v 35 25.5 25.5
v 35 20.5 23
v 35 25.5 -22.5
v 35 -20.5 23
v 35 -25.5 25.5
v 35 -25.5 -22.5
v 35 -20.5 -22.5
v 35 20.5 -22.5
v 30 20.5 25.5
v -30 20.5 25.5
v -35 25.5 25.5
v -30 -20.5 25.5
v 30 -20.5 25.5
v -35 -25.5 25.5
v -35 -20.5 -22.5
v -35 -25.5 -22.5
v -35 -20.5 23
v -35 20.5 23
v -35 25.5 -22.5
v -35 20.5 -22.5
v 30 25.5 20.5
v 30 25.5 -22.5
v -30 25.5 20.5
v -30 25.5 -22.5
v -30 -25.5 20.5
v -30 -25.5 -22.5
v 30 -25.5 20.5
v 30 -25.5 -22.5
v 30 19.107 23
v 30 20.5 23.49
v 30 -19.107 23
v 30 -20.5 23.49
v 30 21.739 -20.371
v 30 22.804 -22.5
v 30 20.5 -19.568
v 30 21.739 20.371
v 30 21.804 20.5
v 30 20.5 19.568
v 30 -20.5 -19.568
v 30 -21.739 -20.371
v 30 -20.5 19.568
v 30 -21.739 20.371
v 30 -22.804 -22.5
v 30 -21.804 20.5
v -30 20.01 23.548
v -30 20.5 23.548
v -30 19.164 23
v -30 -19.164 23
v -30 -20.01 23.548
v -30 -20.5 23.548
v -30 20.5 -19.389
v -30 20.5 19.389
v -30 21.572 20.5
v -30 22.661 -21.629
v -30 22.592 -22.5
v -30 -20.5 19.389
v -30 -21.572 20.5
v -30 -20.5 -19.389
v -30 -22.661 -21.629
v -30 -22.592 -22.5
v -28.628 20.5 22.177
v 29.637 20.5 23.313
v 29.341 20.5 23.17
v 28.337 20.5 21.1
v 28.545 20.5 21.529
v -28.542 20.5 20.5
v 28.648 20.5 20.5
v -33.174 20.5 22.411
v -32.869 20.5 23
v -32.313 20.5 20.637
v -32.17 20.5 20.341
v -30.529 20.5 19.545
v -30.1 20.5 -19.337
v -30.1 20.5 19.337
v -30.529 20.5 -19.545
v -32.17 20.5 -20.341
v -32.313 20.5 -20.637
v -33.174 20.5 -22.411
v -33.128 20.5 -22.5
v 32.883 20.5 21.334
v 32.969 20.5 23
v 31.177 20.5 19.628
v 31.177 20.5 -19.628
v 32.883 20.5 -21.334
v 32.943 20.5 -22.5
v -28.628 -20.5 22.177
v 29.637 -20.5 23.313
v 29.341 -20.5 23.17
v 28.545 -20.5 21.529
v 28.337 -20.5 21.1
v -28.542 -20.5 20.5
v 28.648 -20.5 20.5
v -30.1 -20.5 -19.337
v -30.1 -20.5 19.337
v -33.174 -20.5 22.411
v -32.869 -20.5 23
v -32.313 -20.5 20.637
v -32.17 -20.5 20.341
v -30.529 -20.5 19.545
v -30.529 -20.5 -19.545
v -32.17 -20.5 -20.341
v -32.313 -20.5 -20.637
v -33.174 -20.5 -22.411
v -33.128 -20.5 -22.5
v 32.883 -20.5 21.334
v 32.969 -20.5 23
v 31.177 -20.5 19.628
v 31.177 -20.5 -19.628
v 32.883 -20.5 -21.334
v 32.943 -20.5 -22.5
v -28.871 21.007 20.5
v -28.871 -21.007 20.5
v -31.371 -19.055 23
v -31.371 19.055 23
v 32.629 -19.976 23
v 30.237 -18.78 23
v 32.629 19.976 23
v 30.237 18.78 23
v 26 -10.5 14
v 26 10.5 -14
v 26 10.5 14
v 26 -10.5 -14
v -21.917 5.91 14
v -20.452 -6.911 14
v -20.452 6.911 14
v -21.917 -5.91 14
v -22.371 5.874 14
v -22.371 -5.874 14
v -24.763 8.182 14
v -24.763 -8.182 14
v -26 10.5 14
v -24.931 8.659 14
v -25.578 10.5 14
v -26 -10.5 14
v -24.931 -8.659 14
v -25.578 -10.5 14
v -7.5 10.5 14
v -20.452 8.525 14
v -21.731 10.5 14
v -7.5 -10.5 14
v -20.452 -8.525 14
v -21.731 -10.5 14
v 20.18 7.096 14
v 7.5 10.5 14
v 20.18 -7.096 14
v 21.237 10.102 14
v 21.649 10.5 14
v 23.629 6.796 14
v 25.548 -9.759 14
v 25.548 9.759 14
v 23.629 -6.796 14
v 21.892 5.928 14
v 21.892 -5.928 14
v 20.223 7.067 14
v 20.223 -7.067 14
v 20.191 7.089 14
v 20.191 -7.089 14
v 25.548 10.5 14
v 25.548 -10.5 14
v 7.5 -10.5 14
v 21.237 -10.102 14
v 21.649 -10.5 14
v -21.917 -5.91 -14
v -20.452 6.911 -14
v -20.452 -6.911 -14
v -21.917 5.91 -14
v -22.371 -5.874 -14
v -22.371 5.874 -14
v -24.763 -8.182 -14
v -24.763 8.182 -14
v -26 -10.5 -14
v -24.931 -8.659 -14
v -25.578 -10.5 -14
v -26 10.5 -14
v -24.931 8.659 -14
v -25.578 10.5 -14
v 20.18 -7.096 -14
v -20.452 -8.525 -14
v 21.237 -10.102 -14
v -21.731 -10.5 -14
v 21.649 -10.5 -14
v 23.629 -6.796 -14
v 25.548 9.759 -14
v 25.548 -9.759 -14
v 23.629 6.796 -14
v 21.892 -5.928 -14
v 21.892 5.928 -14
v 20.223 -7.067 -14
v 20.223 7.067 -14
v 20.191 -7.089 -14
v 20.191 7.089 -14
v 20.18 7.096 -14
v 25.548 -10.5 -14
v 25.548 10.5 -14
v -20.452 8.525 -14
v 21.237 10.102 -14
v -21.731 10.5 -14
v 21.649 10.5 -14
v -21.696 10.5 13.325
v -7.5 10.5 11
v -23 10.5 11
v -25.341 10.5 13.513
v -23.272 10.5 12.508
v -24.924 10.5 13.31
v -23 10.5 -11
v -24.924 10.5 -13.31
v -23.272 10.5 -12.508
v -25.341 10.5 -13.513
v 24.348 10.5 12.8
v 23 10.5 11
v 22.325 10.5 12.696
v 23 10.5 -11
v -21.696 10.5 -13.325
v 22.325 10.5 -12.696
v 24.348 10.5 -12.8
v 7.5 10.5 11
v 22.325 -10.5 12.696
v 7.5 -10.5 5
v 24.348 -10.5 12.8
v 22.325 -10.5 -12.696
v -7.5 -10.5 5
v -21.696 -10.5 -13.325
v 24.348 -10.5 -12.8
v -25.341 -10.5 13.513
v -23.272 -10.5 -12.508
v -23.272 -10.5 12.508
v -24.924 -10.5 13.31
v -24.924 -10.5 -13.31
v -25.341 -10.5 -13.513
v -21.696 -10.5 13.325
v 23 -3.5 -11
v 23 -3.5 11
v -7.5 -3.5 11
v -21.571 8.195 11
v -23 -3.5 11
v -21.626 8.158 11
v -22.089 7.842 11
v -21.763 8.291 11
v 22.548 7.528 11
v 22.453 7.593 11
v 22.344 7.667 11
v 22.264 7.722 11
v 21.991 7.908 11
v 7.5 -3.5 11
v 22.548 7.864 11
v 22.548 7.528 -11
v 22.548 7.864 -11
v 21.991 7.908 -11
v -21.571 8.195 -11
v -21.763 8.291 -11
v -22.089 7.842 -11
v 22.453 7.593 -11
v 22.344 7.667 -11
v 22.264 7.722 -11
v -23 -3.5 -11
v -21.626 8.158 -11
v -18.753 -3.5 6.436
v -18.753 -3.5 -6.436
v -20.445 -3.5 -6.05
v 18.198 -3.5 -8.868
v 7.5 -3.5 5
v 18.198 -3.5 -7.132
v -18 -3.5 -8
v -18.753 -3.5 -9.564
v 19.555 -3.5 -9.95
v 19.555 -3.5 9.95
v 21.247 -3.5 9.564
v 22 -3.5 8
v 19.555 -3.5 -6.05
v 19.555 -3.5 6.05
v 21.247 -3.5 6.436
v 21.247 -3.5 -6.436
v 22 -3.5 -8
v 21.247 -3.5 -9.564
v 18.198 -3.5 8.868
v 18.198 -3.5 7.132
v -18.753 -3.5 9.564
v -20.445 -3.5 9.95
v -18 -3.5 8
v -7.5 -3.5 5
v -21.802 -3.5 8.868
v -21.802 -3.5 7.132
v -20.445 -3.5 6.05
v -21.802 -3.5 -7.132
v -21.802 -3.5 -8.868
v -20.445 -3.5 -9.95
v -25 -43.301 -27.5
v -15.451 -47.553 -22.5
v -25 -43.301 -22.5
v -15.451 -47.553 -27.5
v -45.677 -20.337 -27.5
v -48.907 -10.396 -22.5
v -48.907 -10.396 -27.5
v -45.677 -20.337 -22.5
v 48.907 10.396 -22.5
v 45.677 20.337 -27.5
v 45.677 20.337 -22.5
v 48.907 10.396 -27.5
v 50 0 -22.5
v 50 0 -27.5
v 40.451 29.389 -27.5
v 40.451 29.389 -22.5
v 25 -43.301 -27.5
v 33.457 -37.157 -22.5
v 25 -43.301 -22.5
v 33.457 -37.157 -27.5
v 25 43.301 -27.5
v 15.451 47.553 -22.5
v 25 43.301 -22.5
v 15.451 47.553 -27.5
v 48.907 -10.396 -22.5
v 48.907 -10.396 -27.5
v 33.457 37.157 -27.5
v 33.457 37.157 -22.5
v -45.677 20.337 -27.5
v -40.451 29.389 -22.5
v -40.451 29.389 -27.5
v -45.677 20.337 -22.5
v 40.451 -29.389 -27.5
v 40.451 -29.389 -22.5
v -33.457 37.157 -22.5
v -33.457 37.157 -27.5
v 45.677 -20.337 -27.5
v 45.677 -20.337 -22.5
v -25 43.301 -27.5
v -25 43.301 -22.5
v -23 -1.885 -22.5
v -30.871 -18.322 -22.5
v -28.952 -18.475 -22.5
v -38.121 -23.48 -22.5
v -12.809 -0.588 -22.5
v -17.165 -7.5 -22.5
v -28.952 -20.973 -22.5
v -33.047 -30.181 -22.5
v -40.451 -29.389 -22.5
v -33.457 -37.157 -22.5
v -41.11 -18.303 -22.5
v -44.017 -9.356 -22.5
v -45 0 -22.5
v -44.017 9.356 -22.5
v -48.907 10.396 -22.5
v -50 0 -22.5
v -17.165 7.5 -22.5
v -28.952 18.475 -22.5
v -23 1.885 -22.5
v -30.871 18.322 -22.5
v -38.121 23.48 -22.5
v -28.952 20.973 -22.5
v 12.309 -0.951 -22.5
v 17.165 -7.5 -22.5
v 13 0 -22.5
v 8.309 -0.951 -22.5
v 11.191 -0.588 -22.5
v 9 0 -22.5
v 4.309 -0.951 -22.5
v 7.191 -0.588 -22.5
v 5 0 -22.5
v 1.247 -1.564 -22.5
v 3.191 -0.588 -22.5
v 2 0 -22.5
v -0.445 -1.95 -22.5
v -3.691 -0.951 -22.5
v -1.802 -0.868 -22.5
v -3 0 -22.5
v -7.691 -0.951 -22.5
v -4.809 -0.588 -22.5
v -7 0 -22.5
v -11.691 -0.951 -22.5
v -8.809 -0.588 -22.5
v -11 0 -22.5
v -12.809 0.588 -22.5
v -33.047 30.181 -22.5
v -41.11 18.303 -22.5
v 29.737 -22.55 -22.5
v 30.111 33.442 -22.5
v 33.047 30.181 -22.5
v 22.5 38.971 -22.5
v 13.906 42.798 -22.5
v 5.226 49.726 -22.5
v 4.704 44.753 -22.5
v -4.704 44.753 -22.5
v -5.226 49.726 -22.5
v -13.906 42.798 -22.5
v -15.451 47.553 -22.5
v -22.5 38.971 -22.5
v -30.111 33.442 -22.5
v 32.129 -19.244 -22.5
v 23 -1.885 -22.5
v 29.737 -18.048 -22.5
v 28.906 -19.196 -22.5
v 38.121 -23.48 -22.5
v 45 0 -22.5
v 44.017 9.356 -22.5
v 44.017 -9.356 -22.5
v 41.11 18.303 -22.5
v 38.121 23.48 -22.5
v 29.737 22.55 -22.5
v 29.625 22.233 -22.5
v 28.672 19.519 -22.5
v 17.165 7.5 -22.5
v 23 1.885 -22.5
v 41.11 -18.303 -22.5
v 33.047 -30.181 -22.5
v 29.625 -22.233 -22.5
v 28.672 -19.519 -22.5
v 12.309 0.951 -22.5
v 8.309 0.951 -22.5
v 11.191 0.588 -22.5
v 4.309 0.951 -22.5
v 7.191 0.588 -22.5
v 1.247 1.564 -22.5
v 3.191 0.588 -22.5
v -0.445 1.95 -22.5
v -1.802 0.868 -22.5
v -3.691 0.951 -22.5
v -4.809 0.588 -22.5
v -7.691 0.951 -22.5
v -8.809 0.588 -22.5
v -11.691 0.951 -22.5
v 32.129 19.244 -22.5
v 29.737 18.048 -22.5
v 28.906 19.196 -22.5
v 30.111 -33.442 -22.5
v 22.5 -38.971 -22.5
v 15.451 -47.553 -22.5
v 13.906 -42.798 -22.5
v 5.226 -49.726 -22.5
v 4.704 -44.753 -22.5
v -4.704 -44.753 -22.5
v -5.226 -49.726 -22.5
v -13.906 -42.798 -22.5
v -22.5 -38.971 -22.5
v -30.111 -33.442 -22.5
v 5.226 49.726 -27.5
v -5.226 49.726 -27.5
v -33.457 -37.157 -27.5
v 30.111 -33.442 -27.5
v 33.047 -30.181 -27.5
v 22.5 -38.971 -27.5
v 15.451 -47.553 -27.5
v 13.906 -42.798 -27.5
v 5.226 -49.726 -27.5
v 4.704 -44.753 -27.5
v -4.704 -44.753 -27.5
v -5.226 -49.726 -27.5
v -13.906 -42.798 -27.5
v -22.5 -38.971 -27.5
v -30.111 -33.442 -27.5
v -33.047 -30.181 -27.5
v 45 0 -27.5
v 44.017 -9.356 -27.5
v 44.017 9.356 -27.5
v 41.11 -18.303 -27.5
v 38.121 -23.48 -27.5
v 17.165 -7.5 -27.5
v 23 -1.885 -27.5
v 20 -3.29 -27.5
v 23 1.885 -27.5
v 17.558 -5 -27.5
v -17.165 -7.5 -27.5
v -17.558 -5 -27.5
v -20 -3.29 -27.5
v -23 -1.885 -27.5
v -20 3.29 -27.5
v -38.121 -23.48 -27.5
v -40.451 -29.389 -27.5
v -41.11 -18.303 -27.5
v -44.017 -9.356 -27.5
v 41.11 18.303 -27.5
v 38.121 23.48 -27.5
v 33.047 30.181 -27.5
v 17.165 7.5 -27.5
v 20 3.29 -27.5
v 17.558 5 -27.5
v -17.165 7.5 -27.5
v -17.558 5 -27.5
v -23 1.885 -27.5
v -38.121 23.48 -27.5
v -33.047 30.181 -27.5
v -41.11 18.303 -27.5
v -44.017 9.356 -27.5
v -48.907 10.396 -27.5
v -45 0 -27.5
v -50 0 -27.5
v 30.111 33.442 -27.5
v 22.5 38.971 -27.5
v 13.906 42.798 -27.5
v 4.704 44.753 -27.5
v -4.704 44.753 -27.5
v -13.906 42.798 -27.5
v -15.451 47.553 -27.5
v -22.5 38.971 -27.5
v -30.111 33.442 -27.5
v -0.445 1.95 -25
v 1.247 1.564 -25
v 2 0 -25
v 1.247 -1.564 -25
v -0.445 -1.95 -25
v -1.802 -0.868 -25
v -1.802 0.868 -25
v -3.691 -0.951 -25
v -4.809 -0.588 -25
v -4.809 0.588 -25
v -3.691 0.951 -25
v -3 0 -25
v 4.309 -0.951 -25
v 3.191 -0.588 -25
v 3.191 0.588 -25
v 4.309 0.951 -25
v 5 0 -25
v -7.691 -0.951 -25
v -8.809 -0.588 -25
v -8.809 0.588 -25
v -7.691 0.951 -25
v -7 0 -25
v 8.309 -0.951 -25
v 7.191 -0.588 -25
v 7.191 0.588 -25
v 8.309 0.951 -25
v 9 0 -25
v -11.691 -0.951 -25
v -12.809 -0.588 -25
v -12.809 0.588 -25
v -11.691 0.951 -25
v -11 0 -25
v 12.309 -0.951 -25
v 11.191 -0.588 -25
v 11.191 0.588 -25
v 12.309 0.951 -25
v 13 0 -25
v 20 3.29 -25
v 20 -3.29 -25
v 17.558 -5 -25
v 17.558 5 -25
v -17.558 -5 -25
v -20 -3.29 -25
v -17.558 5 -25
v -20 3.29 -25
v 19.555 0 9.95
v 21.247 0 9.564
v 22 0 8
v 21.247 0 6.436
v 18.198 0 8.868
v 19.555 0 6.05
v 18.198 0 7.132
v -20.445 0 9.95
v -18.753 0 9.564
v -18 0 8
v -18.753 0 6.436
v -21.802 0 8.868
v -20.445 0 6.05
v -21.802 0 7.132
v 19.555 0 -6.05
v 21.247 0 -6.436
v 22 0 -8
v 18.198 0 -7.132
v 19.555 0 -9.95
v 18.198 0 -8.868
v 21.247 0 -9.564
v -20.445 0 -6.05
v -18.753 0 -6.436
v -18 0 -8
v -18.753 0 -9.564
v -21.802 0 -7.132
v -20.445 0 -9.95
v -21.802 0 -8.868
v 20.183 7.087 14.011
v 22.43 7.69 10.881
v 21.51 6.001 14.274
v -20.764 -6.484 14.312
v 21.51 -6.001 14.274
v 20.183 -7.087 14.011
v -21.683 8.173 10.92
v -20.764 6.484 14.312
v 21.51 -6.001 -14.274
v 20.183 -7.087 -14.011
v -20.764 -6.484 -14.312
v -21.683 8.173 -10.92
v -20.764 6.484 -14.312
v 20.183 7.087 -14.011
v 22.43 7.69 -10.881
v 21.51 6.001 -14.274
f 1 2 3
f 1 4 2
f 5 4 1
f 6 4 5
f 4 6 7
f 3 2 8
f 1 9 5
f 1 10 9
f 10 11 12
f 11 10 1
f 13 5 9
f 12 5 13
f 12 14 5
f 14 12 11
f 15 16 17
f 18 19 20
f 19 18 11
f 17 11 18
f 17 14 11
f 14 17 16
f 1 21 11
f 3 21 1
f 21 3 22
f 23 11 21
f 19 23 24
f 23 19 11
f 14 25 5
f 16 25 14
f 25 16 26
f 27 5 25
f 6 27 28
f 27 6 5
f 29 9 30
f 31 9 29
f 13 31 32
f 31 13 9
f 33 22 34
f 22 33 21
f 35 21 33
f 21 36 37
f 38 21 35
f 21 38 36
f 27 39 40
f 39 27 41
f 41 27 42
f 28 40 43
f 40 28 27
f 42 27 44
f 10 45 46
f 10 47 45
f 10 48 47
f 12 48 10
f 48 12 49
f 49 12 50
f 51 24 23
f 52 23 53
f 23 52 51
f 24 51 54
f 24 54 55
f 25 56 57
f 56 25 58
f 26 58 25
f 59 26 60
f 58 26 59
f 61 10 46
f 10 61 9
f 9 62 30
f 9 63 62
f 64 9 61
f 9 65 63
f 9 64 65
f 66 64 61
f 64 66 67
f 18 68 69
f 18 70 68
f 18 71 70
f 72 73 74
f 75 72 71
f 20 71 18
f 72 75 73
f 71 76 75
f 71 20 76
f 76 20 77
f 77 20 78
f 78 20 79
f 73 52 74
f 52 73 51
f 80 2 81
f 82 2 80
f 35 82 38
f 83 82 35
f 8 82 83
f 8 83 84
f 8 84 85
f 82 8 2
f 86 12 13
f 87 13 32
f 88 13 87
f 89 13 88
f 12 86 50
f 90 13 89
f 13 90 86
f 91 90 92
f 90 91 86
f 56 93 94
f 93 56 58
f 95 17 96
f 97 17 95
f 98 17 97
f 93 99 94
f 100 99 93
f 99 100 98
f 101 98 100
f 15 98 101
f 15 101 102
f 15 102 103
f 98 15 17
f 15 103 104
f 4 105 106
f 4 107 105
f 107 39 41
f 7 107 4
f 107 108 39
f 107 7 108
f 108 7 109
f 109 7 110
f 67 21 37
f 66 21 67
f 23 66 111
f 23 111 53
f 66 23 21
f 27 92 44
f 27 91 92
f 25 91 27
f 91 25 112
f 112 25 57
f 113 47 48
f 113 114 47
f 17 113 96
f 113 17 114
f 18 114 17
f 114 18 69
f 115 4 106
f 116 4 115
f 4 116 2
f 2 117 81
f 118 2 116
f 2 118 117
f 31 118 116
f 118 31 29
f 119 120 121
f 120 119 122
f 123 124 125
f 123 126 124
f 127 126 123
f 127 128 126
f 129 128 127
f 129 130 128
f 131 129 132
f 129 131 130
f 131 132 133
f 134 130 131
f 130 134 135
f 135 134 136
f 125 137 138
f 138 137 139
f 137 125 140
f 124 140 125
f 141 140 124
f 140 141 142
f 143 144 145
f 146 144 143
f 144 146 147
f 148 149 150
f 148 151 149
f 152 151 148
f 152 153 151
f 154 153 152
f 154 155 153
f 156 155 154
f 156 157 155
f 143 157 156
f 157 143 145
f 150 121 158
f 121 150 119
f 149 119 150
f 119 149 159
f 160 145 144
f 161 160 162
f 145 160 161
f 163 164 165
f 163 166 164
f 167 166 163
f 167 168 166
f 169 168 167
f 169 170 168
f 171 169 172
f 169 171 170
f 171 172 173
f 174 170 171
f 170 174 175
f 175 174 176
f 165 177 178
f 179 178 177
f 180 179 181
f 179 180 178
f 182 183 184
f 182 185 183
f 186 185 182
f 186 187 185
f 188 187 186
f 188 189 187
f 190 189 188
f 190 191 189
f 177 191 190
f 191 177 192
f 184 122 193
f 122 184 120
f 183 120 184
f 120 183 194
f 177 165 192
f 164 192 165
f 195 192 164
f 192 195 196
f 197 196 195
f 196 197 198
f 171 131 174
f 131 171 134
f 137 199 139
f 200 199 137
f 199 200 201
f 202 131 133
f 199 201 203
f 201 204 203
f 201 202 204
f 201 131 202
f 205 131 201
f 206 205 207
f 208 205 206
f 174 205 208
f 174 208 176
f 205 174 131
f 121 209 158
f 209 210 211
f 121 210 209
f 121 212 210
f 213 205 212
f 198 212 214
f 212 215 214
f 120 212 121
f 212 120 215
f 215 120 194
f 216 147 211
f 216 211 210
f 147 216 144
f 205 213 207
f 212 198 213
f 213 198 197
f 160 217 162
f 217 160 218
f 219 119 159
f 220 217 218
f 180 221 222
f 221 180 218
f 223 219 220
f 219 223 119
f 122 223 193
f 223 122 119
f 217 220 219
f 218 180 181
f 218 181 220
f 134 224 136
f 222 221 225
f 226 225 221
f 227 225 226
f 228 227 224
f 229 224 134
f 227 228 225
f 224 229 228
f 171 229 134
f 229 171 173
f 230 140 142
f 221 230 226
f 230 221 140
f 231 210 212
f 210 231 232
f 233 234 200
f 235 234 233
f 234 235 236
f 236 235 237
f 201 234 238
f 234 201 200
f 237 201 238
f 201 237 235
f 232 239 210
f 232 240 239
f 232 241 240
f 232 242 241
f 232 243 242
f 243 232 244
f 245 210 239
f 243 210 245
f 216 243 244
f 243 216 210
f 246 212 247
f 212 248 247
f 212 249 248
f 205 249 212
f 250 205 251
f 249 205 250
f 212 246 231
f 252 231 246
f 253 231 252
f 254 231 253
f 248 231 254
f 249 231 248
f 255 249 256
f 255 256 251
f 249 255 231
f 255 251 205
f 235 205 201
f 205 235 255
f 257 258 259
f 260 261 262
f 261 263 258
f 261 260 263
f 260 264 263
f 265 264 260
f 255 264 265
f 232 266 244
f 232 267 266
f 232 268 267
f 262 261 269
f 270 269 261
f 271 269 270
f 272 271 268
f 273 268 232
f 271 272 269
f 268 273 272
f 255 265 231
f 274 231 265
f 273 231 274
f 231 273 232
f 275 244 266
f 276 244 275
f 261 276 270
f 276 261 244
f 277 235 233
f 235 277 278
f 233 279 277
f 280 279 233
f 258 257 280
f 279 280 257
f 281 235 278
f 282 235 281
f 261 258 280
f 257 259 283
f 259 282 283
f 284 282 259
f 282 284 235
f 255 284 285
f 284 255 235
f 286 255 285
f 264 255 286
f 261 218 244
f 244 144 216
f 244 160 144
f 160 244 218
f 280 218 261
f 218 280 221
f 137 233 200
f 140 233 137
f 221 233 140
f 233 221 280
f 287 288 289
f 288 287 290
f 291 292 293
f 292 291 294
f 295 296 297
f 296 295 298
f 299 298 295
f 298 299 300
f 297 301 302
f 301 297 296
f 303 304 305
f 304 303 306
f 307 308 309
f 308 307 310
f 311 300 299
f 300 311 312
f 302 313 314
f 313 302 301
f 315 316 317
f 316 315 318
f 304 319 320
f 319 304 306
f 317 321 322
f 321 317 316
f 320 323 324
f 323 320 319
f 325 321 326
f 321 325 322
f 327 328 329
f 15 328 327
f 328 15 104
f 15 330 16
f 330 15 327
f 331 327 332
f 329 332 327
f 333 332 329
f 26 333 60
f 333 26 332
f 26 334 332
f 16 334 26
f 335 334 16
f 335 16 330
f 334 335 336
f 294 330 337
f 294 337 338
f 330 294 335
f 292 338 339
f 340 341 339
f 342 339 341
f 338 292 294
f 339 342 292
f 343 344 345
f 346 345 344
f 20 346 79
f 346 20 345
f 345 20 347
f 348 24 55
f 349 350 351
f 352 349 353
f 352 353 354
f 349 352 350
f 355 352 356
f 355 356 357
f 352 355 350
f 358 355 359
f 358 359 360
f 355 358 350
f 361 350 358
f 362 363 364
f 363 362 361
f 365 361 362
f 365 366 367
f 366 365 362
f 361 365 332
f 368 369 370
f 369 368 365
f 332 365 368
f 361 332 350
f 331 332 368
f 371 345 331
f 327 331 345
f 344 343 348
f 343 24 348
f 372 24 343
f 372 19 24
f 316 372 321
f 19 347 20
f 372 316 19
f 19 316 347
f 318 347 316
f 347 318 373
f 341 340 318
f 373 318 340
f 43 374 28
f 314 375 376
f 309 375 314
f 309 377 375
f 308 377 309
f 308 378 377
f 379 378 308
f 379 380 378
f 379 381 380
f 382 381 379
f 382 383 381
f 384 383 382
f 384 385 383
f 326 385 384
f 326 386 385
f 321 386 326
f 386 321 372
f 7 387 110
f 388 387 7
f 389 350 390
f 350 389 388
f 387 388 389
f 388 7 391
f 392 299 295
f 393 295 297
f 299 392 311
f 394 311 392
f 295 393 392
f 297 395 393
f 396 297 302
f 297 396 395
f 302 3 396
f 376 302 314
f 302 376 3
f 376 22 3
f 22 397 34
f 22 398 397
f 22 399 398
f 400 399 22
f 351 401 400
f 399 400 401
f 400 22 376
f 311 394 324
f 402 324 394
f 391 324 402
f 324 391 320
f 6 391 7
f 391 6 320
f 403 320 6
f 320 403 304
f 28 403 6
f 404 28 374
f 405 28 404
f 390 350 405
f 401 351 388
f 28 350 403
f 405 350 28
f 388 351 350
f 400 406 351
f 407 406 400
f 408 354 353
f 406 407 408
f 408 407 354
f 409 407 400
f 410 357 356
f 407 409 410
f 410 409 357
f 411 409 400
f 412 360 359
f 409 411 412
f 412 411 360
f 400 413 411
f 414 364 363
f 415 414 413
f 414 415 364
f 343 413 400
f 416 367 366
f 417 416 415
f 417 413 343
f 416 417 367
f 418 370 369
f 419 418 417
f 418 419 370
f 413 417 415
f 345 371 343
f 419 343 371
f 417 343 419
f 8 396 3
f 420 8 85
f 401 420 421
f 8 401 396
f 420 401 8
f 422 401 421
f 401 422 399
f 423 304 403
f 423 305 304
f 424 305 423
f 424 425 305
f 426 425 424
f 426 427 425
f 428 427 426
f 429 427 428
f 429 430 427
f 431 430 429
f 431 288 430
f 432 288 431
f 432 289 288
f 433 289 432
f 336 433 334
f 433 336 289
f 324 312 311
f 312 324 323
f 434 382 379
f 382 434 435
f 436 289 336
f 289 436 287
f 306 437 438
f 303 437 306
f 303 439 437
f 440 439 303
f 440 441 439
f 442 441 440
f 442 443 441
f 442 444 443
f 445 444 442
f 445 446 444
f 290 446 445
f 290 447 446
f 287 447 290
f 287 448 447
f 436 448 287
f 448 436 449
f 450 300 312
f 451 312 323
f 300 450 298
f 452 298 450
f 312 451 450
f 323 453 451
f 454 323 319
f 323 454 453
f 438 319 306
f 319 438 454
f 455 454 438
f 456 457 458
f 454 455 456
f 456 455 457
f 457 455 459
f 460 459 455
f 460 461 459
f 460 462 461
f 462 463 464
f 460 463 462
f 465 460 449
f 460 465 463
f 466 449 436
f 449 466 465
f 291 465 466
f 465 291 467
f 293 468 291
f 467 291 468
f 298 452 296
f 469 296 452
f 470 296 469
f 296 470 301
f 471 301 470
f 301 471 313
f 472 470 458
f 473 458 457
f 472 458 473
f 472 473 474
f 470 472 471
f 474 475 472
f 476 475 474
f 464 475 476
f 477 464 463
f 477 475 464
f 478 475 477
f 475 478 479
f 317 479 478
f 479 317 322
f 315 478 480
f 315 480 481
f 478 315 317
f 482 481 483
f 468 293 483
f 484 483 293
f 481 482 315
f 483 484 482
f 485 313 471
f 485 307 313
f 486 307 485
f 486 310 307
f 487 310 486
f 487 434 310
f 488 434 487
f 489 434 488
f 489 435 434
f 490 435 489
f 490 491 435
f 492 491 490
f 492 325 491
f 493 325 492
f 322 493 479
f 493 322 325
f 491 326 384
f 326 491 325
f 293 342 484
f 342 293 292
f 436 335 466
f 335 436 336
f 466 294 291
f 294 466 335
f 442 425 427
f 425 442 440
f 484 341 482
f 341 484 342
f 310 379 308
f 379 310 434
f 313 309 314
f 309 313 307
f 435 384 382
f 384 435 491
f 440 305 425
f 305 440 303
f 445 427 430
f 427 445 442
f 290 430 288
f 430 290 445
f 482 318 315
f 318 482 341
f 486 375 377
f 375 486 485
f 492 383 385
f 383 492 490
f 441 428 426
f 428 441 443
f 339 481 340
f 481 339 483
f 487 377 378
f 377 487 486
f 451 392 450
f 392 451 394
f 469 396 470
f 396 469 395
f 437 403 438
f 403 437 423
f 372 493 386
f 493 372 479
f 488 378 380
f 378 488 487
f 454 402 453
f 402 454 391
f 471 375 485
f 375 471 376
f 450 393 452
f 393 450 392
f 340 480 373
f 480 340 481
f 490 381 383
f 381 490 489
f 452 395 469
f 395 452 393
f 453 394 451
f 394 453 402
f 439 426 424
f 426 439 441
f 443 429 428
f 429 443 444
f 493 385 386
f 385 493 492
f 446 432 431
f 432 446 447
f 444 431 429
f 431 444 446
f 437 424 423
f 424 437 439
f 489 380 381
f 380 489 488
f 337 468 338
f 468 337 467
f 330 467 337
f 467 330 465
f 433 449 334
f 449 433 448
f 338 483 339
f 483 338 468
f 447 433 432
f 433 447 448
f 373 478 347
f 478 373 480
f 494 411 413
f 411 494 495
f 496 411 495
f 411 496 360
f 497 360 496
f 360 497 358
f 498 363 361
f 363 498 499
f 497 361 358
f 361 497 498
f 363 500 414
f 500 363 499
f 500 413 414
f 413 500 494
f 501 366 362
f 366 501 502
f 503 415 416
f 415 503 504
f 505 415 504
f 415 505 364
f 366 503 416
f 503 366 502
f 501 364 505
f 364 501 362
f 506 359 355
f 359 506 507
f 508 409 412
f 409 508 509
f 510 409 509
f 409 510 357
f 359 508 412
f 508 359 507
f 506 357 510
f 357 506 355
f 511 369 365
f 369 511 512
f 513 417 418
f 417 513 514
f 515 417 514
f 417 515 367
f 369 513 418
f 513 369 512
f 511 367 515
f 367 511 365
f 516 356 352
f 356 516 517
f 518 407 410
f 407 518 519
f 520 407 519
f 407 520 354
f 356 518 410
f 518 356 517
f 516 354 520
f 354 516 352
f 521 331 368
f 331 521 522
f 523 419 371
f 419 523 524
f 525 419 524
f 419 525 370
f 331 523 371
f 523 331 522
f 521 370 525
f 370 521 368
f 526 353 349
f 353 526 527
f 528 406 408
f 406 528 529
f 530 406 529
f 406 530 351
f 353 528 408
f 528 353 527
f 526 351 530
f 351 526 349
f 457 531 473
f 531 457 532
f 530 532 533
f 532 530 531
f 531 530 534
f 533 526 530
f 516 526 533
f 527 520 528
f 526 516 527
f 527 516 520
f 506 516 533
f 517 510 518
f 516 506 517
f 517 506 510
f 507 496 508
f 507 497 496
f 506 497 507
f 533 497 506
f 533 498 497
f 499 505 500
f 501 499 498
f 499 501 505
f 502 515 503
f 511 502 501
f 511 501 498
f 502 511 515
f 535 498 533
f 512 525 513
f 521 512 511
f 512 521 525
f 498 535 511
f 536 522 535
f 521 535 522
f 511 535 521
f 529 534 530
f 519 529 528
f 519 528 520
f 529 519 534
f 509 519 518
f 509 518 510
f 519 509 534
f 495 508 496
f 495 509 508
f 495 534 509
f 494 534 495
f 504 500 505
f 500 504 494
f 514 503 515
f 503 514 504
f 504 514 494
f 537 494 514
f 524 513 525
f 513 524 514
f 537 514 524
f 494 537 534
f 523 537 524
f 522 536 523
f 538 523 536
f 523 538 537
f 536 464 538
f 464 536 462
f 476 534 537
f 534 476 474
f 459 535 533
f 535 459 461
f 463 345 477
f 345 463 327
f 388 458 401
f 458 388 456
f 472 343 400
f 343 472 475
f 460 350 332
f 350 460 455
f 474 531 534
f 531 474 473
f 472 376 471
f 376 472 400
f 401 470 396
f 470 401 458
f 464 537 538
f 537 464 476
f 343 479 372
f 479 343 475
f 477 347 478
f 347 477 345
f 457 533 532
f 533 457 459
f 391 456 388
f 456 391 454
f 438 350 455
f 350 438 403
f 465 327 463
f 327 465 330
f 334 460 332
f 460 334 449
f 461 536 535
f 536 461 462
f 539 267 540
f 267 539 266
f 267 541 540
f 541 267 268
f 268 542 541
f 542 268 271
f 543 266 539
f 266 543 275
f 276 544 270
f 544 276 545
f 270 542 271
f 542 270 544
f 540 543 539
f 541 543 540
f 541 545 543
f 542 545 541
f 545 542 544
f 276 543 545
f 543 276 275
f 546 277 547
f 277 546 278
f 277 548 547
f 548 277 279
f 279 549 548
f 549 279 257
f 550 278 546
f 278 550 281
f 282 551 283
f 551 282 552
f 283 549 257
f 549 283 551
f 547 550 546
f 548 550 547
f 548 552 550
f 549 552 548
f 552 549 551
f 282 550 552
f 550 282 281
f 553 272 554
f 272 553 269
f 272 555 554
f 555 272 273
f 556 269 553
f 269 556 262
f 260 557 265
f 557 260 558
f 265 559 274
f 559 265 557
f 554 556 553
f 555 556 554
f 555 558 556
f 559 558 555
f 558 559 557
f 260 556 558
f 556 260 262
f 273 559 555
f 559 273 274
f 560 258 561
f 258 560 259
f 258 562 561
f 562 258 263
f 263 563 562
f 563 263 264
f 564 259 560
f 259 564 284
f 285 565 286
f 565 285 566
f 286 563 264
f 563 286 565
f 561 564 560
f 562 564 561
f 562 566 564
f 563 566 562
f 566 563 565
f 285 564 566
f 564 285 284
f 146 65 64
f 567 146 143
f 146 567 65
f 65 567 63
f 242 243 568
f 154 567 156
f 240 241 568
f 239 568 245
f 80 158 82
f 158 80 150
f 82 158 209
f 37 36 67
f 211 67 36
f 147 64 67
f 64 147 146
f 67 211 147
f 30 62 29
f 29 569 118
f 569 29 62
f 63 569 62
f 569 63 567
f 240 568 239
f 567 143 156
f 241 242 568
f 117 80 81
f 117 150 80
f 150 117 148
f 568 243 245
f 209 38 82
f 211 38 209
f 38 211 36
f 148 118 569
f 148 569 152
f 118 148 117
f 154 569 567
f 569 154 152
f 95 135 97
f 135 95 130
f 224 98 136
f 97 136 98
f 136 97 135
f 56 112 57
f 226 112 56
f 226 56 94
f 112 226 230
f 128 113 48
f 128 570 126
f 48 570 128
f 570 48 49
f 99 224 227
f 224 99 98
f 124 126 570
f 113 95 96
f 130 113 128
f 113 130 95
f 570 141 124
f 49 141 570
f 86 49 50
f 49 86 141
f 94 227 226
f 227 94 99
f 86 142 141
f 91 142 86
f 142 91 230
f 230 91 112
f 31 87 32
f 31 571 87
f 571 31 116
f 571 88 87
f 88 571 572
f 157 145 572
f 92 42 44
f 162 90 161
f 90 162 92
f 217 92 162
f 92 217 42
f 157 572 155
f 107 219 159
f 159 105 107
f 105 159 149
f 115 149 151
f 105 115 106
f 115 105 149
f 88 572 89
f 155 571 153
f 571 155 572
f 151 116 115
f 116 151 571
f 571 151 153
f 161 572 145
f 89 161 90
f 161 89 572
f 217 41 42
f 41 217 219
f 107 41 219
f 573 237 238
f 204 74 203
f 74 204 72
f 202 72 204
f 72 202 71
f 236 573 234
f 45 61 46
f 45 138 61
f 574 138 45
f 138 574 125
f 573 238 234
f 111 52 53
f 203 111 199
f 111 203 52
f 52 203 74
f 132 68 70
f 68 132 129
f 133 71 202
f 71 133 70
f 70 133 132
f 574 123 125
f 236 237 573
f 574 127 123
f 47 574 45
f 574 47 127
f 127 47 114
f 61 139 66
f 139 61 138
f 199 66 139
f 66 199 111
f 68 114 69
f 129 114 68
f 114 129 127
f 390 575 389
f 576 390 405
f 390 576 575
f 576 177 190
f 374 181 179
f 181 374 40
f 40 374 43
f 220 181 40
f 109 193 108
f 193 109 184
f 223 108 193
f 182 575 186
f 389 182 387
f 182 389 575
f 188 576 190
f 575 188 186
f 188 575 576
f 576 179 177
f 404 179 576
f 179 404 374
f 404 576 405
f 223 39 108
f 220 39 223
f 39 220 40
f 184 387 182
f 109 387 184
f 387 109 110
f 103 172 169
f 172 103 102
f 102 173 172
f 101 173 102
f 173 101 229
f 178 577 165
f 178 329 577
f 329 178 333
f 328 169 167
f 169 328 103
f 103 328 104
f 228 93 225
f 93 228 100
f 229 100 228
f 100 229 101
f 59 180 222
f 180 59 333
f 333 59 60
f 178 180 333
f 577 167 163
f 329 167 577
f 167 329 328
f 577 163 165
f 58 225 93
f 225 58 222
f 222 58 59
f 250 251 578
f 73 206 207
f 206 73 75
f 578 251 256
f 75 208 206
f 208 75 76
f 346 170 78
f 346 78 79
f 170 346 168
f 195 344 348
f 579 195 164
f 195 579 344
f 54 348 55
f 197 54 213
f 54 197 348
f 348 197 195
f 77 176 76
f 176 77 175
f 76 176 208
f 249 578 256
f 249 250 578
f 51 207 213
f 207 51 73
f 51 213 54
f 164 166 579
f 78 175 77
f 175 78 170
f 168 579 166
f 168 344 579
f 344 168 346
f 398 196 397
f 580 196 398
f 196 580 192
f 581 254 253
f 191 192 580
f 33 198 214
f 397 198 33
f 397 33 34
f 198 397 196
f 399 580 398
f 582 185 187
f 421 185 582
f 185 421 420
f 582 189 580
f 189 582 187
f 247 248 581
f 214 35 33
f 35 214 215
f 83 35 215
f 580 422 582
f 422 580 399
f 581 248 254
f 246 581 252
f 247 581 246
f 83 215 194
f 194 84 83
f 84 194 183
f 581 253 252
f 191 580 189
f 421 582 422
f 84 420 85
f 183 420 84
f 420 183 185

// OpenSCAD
difference() {
    // Parent cube
    cube([70, 51, 51], center = true);
    // Parent cutout
    
    cube([60, 41, 56], center = true);
    translate([0, 0, -5])
        cube([60, 56, 51], center = true);
    translate([0, 0, -5])
        cube([75, 41, 56], center = true);
}

       

difference() {
    // Distance sensor housing
    cube([52, 21, 28], center = true);
    translate([0, 5, 0])
        cube([46, 17, 22], center = true);
    translate([0, 6,10])
        cube([15, 40, 10], center = true);
}
difference() {
    translate([0, 0, -25])
        cylinder(5, 50, 50, center = true);
    translate([0, 0, -25])
        cylinder(6, 45, 45, center = true);
}


difference() {
    // Base
   translate([0, 0, -25])
       cube([60, 41, 5], center = true); 
   translate([0, 0, -25])
        cylinder(10, 2, 2, center = true);
   translate([-4, 0, -25])
        cylinder(10, 1, 1, center = true); 
   translate([4, 0, -25])
        cylinder(10, 1, 1, center = true);
   translate([-8, 0, -25])
        cylinder(10, 1, 1, center = true); 
   translate([8, 0, -25])
        cylinder(10, 1, 1, center = true);
   translate([-12, 0, -25])
        cylinder(10, 1, 1, center = true); 
   translate([12, 0, -25])
        cylinder(10, 1, 1, center = true);
   translate([0, 0, -30])
        cube([40, 10, 10], center = true);
    
    
    // Base cutouts
    translate([-28, 0, -25])
        cube([10, 17, 10], center = true);
    
    translate([28, 0, -25])
        cube([10, 17, 10], center = true);
        
    translate([0, 15, -25])
        cube([66, 15, 10], center = true);

    translate([0, -15, -25])
        cube([66, 15, 10], center = true);
}

// Base pegs
translate([28, 16, -25])
rotate([0, 0, 55])
    cube([30, 8, 5], center = true);

translate([-28, 16, -25])
rotate([0, 0, -55])
    cube([30, 8, 5], center = true);

translate([28, -16, -25])
rotate([0, 0, -55])
    cube([30, 8, 5], center = true);

translate([-28, -16, -25])
rotate([0, 0, 55])
    cube([30, 8, 5], center = true);

// Distance sensor standoffs
translate([20, -3, 8])
rotate([90, 0, 0])
    cylinder(6, 2, 2, center = true);

translate([-20, -3, 8])
rotate([90, 0, 0])
    cylinder(6, 2, 2, center = true);

translate([20, -3, -8])
rotate([90, 0, 0])
    cylinder(6, 2, 2, center = true);

translate([-20, -3, -8])
rotate([90, 0, 0])
    cylinder(6, 2, 2, center = true);



// 3D Poles
translate([27, 15, 18])
rotate([46, 225, 0])
    cylinder(22, 2, 2, center = true);
    
translate([-27, -15, 18])
rotate([-46, -225, 0])
    cylinder(22, 2, 2, center = true);
    
translate([27, -15, 18])
rotate([-46, 225, 0])
    cylinder(22, 2, 2, center = true);
    
translate([-27, 15, 18])
rotate([46, -225, 0])
    cylinder(22, 2, 2, center = true);
    
translate([27, -15, -18])
rotate([46, -225, 0])
    cylinder(22, 2, 2, center = true);
    
translate([-27, -15, -18])
rotate([46, 225, 0])
    cylinder(22, 2, 2, center = true);
    
translate([-27, 15, -18])
rotate([-46, 225, 0])
    cylinder(22, 2, 2, center = true);
    
translate([27, 15, -18])
rotate([-46, -225, 0])
    cylinder(22, 2, 2, center = true);

/*
    
translate([28, -16, -16])
rotate([40, -210, 0])
    cylinder(24, 1.5, 1.5, center = true);
        
translate([28, 16, -16])
rotate([40, -30, 0])
    cylinder(24, 1.5, 1.5, center = true); 
  
translate([-28, 16, -16])
rotate([40, 30, 0])
    cylinder(24, 1.5, 1.5, center = true); 
  
*/   
    
    
    
    
    
    
    
